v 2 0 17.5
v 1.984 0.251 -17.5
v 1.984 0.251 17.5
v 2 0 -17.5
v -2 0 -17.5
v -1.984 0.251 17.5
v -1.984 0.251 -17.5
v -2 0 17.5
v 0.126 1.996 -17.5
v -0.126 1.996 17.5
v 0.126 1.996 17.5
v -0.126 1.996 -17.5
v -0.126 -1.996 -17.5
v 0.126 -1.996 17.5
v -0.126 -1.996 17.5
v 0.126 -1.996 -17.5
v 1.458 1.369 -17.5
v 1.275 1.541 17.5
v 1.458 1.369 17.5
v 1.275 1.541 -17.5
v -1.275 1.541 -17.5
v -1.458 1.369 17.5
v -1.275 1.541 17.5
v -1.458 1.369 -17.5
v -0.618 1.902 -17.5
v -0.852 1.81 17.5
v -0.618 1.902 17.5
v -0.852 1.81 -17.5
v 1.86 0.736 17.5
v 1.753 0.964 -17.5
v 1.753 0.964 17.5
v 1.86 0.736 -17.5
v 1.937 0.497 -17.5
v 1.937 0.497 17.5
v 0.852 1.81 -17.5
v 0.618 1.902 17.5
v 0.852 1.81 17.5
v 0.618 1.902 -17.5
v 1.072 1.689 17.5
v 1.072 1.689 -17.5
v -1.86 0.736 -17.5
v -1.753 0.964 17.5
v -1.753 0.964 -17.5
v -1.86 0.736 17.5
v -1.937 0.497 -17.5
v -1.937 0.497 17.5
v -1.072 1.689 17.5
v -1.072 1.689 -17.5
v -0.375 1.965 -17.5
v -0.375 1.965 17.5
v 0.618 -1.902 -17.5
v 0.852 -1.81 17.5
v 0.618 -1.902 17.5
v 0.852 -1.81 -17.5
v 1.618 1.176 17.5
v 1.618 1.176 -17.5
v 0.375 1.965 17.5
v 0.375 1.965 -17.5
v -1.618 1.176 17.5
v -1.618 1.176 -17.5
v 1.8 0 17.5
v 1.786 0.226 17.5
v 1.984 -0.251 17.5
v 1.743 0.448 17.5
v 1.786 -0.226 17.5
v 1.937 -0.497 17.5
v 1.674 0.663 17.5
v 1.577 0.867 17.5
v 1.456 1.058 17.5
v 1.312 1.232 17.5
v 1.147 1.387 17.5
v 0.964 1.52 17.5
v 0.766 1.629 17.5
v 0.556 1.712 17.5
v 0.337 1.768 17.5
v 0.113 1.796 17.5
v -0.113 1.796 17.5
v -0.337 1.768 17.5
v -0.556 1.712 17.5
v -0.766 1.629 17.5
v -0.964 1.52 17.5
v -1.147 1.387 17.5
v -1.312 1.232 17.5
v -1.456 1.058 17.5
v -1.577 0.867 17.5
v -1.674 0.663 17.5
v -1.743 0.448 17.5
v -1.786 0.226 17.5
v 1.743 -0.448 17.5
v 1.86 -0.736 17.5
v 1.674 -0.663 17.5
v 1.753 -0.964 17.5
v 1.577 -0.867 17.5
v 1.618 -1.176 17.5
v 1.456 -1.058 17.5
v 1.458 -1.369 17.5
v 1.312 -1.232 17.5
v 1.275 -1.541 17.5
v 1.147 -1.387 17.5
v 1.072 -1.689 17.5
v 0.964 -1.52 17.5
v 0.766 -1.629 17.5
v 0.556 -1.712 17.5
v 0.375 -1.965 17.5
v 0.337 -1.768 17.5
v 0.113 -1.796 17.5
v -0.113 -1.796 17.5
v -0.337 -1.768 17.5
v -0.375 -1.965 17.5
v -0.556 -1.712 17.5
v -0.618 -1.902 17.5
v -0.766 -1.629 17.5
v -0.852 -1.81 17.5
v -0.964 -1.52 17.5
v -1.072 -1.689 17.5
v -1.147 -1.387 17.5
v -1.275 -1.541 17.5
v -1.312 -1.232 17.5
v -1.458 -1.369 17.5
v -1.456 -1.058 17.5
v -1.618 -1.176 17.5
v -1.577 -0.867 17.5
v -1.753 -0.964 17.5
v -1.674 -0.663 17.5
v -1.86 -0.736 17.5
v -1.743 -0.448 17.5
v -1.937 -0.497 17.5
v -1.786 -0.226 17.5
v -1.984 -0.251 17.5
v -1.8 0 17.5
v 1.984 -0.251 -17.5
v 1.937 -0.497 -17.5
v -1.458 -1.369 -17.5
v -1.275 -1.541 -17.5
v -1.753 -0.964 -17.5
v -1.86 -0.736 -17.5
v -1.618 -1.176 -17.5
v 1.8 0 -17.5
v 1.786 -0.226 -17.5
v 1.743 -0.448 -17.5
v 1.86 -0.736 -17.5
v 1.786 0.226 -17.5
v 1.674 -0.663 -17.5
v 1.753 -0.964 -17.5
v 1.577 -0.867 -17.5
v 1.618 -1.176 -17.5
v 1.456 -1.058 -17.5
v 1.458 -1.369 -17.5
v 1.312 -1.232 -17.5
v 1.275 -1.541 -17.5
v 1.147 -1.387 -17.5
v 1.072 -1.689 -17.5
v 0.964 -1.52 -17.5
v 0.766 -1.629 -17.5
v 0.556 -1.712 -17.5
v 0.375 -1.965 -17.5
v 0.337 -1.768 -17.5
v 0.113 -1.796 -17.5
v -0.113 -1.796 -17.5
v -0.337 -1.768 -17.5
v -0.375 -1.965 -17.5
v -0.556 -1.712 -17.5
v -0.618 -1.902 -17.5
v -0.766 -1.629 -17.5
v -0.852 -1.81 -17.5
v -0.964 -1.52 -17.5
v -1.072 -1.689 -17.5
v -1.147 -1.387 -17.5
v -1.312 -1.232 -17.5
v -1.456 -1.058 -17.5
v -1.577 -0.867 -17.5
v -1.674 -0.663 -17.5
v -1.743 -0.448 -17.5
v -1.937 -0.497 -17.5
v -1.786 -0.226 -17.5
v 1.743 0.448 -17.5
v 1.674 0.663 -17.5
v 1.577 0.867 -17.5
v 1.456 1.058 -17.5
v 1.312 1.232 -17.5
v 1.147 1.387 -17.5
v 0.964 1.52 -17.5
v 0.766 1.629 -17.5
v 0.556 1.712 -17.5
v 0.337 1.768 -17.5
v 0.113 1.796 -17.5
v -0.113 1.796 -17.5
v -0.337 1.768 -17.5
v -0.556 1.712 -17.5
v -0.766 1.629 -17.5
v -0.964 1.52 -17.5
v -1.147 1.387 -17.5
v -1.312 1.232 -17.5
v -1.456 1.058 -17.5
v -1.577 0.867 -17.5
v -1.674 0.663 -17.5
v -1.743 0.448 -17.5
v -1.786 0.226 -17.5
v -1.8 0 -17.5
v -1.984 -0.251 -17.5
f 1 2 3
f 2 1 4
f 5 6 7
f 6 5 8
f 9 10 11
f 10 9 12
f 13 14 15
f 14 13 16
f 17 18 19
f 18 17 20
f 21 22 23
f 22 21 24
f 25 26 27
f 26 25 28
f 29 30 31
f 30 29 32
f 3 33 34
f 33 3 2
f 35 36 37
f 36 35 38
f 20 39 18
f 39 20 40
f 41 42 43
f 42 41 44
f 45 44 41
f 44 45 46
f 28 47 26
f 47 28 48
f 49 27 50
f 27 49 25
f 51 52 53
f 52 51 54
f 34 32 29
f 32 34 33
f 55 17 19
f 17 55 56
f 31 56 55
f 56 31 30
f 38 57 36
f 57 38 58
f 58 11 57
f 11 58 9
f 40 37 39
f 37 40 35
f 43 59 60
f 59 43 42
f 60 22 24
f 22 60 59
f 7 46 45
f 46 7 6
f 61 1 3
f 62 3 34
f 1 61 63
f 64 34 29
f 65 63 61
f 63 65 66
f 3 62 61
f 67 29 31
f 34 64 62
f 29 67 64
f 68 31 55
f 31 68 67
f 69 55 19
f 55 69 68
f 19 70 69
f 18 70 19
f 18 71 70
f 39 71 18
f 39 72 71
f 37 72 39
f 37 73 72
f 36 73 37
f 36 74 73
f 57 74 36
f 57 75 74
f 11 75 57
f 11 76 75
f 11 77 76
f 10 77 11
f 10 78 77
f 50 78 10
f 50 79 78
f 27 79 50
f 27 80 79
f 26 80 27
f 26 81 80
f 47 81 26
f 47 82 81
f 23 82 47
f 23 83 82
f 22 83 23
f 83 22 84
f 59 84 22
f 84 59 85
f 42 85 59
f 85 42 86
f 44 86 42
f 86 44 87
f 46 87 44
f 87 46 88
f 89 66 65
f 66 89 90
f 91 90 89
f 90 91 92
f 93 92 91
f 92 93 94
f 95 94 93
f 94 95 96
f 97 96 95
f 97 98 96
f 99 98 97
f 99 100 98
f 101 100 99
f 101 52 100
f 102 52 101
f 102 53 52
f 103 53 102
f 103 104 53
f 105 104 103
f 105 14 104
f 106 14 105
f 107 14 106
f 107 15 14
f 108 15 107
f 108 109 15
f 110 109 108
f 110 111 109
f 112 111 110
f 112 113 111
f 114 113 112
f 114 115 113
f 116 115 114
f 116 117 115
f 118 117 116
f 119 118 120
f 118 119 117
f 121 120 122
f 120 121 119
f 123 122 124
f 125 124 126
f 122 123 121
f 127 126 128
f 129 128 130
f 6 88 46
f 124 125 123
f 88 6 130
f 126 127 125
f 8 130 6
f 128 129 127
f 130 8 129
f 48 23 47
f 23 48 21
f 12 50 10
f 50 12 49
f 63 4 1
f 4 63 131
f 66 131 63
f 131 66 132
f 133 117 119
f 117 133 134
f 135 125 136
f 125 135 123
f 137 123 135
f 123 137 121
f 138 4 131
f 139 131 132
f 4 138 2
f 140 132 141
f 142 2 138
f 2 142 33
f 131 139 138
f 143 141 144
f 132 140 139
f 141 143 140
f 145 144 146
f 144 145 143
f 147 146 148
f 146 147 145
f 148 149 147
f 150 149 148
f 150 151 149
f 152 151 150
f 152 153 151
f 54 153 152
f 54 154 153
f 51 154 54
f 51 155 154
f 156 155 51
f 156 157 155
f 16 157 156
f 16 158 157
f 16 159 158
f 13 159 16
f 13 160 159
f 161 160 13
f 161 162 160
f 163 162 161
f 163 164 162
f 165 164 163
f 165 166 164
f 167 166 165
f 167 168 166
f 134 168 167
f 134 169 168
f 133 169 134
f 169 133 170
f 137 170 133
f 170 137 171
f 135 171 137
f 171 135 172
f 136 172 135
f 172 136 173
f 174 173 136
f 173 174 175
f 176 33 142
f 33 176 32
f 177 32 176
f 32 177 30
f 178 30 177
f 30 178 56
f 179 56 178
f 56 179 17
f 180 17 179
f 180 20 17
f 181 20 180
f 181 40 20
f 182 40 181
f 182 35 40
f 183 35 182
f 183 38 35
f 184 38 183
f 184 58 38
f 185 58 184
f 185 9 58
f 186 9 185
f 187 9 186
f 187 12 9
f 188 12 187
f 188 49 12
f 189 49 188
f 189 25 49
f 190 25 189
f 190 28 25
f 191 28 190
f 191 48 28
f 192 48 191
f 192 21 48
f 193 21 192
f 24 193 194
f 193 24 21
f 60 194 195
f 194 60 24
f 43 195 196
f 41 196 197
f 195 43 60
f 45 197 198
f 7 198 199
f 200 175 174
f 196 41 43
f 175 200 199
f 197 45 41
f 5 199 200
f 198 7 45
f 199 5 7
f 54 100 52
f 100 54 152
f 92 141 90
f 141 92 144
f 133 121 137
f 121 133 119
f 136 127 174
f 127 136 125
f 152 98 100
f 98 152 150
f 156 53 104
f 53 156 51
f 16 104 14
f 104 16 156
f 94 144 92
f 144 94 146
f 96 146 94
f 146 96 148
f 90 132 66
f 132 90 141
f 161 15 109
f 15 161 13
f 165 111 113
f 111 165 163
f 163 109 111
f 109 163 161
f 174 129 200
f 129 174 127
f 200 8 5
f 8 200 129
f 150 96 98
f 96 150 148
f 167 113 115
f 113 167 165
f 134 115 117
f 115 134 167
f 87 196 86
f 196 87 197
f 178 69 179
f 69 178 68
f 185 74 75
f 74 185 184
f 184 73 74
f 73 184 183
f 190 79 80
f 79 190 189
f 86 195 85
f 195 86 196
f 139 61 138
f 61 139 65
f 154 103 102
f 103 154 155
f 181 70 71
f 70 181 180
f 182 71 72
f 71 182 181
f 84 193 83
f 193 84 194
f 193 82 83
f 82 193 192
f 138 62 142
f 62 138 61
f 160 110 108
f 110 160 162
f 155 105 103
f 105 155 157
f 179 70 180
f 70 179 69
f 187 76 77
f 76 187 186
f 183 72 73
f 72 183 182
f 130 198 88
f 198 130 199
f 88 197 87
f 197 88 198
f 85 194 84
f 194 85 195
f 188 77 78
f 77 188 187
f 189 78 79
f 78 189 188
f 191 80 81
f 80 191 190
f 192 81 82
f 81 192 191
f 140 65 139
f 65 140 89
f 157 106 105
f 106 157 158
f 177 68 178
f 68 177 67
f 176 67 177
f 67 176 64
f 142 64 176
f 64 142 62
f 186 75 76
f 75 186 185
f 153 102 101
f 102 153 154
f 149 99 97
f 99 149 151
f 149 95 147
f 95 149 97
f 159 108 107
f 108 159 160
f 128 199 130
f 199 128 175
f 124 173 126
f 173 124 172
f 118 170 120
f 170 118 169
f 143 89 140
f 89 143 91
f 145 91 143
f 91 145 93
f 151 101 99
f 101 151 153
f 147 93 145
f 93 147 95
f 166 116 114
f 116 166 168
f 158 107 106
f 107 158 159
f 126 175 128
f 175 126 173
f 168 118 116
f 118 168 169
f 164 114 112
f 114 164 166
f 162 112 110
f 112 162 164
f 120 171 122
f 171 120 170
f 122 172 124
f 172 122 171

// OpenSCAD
$fn = 50;


difference() {
	union() {
		translate(v = [0, 0, -17.5000000000]) {
			cylinder(h = 35, r = 2.0000000000);
		}
	}
	union() {
		translate(v = [0, 0, -100.0000000000]) {
			cylinder(h = 200, r = 1.8000000000);
		}
	}
}
